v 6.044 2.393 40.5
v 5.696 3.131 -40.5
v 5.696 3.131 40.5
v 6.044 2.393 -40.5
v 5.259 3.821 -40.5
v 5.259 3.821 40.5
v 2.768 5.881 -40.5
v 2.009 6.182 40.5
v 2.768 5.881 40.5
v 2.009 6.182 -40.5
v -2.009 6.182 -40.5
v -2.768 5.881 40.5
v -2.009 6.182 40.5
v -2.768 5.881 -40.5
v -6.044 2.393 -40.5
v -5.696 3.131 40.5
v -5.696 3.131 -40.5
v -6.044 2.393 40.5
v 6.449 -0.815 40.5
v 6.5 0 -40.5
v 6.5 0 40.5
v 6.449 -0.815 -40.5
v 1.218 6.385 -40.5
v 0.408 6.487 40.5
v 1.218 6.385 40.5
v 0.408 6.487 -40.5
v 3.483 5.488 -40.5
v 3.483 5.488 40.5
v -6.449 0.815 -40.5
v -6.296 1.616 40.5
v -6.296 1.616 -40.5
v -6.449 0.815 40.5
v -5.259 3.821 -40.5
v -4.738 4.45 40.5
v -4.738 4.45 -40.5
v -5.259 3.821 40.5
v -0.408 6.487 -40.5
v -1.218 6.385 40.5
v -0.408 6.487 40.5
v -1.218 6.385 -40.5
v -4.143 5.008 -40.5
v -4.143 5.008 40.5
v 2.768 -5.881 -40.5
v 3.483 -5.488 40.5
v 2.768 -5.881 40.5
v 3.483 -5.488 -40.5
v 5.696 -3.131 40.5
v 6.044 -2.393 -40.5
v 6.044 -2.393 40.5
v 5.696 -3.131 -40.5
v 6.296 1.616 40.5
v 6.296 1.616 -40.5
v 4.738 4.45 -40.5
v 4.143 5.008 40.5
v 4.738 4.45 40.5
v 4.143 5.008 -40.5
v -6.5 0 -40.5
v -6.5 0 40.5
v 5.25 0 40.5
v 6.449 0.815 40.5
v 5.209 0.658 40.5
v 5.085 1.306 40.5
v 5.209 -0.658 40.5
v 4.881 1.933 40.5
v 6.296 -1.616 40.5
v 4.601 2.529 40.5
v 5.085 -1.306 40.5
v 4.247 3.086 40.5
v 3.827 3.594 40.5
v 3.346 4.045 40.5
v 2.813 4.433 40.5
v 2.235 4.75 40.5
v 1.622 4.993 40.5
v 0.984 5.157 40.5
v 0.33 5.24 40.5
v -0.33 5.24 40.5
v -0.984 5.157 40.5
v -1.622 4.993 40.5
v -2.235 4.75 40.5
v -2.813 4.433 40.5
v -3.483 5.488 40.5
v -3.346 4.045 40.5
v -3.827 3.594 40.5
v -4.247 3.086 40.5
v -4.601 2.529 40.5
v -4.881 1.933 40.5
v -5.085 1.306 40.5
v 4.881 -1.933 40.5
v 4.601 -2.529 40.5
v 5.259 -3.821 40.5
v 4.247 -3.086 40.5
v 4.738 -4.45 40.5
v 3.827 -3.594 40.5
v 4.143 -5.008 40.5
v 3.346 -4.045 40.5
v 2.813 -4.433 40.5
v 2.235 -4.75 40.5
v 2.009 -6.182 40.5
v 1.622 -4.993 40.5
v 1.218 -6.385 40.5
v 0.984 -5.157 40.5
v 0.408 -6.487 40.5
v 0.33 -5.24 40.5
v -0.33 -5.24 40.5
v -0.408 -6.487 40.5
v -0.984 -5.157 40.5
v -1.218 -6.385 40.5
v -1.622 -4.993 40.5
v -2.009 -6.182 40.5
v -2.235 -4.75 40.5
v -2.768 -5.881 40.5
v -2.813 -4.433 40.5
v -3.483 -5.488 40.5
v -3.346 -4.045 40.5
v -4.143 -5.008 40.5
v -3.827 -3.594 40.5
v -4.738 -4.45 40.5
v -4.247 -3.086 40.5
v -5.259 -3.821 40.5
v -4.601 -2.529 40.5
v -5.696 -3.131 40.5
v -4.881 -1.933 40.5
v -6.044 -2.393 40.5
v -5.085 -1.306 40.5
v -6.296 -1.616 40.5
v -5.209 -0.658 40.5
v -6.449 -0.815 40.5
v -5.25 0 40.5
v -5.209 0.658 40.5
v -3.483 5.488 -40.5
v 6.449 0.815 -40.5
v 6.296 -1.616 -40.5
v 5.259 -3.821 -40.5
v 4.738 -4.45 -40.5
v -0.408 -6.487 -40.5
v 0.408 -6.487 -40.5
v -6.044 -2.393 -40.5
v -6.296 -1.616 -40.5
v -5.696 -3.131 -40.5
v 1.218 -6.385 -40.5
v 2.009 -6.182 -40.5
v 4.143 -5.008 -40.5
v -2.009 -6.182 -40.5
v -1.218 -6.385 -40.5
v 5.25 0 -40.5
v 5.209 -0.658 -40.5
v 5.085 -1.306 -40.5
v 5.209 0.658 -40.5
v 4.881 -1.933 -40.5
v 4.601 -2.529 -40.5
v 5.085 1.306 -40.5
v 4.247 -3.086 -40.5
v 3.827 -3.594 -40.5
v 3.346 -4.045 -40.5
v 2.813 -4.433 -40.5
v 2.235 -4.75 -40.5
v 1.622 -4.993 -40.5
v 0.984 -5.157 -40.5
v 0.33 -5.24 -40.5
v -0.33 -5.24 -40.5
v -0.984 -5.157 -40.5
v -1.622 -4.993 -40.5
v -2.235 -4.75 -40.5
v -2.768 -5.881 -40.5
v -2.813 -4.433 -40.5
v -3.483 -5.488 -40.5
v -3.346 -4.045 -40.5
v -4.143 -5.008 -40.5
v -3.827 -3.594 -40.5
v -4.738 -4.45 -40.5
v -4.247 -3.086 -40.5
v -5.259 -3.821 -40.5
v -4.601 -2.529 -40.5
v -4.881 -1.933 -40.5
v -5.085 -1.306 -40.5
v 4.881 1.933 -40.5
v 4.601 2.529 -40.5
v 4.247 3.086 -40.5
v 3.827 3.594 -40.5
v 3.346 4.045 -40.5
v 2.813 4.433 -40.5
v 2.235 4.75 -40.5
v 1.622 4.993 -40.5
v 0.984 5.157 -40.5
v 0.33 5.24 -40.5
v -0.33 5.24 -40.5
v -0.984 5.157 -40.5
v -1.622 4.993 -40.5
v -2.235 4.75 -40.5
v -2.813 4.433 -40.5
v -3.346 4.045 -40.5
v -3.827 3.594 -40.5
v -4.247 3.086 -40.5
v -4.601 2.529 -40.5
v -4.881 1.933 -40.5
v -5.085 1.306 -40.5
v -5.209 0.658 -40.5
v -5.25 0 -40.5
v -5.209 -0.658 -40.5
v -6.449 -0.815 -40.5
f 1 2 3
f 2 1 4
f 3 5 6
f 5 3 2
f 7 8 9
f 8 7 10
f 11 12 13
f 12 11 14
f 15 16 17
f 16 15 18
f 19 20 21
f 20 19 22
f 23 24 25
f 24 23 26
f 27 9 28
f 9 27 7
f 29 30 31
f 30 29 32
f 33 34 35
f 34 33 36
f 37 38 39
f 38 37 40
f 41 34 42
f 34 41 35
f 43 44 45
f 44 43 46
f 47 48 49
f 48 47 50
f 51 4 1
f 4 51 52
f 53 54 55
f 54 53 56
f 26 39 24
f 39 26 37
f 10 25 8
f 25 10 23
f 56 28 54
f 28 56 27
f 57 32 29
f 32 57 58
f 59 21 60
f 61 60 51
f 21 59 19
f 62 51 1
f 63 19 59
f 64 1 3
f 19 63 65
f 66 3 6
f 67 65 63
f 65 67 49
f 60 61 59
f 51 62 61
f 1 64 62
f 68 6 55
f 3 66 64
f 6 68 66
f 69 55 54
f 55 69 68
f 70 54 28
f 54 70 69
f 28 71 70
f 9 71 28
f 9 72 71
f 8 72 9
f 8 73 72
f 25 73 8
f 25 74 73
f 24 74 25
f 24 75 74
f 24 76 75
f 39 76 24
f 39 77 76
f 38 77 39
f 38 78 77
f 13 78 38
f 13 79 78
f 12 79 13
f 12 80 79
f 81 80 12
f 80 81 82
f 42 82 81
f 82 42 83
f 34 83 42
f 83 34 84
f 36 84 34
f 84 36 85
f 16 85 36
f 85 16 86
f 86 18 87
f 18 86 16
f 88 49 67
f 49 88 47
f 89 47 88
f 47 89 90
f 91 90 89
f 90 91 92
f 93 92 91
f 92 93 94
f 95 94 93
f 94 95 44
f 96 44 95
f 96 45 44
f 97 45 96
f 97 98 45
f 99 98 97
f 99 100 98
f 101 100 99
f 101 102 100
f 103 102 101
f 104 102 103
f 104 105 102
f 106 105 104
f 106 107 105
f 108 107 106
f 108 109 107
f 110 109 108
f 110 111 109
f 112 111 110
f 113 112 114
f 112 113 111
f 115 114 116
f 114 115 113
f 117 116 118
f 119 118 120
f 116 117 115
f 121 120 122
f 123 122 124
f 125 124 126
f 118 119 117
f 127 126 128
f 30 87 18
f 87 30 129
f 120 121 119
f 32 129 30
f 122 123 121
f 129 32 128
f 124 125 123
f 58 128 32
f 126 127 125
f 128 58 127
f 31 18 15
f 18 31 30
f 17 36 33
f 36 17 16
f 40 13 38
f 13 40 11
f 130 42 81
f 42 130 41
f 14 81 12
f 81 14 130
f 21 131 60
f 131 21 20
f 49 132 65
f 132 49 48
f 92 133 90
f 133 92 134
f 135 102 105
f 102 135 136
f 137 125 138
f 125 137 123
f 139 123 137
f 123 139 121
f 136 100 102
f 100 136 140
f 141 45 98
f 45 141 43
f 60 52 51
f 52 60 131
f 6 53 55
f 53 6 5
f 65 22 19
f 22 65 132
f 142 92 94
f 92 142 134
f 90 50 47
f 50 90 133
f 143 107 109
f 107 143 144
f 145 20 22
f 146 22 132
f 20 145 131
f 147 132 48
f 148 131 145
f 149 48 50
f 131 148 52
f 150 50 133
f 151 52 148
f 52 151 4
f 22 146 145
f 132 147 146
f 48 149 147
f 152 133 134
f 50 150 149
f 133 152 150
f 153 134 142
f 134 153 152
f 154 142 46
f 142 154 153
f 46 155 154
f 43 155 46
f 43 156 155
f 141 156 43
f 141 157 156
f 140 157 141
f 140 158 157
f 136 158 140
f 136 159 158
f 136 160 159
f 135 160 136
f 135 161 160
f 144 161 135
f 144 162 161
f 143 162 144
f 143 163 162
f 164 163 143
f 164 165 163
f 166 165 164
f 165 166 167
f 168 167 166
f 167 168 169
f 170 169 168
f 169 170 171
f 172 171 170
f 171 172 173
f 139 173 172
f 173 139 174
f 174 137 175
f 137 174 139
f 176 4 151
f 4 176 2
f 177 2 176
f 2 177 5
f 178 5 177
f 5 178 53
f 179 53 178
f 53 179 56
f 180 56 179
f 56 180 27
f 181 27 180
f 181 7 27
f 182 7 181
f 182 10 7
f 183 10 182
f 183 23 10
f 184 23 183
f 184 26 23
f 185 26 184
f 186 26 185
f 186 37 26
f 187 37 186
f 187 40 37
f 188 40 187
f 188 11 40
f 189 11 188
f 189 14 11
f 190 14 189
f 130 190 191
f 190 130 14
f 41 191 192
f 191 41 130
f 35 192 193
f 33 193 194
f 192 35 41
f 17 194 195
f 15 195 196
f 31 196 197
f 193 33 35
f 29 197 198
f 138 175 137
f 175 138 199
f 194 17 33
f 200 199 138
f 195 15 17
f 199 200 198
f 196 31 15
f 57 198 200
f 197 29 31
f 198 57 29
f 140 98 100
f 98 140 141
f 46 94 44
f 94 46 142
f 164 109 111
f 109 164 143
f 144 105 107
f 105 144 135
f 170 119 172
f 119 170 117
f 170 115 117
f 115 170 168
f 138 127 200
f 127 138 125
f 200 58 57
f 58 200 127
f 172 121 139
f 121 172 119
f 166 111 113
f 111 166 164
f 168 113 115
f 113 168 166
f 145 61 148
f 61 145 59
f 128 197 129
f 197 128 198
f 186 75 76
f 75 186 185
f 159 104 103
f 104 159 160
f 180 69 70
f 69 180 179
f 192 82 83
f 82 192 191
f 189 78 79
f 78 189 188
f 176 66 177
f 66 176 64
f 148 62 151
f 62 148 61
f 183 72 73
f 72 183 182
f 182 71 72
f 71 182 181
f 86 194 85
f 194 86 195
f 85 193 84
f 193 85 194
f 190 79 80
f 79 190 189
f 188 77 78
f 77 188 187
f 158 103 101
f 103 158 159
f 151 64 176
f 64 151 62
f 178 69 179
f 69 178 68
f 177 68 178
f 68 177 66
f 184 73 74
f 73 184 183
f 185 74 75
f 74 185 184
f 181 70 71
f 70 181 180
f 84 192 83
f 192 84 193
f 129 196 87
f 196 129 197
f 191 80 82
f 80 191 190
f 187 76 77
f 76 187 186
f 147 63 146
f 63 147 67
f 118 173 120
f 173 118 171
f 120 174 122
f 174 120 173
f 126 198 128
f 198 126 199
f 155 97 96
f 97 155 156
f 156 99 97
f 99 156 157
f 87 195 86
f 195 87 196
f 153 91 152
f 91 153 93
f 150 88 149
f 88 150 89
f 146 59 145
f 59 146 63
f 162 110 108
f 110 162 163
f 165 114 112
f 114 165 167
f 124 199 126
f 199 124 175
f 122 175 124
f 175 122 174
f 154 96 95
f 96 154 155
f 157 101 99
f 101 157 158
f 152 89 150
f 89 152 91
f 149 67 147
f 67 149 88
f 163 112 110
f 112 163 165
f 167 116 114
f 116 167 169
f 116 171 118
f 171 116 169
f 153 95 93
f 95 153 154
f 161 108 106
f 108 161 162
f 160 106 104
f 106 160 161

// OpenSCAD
$fn = 50;


difference() {
	union() {
		translate(v = [0, 0, -40.5000000000]) {
			cylinder(h = 81, r = 6.5000000000);
		}
	}
	union() {
		translate(v = [0, 0, -100.0000000000]) {
			cylinder(h = 200, r = 5.2500000000);
		}
	}
}
